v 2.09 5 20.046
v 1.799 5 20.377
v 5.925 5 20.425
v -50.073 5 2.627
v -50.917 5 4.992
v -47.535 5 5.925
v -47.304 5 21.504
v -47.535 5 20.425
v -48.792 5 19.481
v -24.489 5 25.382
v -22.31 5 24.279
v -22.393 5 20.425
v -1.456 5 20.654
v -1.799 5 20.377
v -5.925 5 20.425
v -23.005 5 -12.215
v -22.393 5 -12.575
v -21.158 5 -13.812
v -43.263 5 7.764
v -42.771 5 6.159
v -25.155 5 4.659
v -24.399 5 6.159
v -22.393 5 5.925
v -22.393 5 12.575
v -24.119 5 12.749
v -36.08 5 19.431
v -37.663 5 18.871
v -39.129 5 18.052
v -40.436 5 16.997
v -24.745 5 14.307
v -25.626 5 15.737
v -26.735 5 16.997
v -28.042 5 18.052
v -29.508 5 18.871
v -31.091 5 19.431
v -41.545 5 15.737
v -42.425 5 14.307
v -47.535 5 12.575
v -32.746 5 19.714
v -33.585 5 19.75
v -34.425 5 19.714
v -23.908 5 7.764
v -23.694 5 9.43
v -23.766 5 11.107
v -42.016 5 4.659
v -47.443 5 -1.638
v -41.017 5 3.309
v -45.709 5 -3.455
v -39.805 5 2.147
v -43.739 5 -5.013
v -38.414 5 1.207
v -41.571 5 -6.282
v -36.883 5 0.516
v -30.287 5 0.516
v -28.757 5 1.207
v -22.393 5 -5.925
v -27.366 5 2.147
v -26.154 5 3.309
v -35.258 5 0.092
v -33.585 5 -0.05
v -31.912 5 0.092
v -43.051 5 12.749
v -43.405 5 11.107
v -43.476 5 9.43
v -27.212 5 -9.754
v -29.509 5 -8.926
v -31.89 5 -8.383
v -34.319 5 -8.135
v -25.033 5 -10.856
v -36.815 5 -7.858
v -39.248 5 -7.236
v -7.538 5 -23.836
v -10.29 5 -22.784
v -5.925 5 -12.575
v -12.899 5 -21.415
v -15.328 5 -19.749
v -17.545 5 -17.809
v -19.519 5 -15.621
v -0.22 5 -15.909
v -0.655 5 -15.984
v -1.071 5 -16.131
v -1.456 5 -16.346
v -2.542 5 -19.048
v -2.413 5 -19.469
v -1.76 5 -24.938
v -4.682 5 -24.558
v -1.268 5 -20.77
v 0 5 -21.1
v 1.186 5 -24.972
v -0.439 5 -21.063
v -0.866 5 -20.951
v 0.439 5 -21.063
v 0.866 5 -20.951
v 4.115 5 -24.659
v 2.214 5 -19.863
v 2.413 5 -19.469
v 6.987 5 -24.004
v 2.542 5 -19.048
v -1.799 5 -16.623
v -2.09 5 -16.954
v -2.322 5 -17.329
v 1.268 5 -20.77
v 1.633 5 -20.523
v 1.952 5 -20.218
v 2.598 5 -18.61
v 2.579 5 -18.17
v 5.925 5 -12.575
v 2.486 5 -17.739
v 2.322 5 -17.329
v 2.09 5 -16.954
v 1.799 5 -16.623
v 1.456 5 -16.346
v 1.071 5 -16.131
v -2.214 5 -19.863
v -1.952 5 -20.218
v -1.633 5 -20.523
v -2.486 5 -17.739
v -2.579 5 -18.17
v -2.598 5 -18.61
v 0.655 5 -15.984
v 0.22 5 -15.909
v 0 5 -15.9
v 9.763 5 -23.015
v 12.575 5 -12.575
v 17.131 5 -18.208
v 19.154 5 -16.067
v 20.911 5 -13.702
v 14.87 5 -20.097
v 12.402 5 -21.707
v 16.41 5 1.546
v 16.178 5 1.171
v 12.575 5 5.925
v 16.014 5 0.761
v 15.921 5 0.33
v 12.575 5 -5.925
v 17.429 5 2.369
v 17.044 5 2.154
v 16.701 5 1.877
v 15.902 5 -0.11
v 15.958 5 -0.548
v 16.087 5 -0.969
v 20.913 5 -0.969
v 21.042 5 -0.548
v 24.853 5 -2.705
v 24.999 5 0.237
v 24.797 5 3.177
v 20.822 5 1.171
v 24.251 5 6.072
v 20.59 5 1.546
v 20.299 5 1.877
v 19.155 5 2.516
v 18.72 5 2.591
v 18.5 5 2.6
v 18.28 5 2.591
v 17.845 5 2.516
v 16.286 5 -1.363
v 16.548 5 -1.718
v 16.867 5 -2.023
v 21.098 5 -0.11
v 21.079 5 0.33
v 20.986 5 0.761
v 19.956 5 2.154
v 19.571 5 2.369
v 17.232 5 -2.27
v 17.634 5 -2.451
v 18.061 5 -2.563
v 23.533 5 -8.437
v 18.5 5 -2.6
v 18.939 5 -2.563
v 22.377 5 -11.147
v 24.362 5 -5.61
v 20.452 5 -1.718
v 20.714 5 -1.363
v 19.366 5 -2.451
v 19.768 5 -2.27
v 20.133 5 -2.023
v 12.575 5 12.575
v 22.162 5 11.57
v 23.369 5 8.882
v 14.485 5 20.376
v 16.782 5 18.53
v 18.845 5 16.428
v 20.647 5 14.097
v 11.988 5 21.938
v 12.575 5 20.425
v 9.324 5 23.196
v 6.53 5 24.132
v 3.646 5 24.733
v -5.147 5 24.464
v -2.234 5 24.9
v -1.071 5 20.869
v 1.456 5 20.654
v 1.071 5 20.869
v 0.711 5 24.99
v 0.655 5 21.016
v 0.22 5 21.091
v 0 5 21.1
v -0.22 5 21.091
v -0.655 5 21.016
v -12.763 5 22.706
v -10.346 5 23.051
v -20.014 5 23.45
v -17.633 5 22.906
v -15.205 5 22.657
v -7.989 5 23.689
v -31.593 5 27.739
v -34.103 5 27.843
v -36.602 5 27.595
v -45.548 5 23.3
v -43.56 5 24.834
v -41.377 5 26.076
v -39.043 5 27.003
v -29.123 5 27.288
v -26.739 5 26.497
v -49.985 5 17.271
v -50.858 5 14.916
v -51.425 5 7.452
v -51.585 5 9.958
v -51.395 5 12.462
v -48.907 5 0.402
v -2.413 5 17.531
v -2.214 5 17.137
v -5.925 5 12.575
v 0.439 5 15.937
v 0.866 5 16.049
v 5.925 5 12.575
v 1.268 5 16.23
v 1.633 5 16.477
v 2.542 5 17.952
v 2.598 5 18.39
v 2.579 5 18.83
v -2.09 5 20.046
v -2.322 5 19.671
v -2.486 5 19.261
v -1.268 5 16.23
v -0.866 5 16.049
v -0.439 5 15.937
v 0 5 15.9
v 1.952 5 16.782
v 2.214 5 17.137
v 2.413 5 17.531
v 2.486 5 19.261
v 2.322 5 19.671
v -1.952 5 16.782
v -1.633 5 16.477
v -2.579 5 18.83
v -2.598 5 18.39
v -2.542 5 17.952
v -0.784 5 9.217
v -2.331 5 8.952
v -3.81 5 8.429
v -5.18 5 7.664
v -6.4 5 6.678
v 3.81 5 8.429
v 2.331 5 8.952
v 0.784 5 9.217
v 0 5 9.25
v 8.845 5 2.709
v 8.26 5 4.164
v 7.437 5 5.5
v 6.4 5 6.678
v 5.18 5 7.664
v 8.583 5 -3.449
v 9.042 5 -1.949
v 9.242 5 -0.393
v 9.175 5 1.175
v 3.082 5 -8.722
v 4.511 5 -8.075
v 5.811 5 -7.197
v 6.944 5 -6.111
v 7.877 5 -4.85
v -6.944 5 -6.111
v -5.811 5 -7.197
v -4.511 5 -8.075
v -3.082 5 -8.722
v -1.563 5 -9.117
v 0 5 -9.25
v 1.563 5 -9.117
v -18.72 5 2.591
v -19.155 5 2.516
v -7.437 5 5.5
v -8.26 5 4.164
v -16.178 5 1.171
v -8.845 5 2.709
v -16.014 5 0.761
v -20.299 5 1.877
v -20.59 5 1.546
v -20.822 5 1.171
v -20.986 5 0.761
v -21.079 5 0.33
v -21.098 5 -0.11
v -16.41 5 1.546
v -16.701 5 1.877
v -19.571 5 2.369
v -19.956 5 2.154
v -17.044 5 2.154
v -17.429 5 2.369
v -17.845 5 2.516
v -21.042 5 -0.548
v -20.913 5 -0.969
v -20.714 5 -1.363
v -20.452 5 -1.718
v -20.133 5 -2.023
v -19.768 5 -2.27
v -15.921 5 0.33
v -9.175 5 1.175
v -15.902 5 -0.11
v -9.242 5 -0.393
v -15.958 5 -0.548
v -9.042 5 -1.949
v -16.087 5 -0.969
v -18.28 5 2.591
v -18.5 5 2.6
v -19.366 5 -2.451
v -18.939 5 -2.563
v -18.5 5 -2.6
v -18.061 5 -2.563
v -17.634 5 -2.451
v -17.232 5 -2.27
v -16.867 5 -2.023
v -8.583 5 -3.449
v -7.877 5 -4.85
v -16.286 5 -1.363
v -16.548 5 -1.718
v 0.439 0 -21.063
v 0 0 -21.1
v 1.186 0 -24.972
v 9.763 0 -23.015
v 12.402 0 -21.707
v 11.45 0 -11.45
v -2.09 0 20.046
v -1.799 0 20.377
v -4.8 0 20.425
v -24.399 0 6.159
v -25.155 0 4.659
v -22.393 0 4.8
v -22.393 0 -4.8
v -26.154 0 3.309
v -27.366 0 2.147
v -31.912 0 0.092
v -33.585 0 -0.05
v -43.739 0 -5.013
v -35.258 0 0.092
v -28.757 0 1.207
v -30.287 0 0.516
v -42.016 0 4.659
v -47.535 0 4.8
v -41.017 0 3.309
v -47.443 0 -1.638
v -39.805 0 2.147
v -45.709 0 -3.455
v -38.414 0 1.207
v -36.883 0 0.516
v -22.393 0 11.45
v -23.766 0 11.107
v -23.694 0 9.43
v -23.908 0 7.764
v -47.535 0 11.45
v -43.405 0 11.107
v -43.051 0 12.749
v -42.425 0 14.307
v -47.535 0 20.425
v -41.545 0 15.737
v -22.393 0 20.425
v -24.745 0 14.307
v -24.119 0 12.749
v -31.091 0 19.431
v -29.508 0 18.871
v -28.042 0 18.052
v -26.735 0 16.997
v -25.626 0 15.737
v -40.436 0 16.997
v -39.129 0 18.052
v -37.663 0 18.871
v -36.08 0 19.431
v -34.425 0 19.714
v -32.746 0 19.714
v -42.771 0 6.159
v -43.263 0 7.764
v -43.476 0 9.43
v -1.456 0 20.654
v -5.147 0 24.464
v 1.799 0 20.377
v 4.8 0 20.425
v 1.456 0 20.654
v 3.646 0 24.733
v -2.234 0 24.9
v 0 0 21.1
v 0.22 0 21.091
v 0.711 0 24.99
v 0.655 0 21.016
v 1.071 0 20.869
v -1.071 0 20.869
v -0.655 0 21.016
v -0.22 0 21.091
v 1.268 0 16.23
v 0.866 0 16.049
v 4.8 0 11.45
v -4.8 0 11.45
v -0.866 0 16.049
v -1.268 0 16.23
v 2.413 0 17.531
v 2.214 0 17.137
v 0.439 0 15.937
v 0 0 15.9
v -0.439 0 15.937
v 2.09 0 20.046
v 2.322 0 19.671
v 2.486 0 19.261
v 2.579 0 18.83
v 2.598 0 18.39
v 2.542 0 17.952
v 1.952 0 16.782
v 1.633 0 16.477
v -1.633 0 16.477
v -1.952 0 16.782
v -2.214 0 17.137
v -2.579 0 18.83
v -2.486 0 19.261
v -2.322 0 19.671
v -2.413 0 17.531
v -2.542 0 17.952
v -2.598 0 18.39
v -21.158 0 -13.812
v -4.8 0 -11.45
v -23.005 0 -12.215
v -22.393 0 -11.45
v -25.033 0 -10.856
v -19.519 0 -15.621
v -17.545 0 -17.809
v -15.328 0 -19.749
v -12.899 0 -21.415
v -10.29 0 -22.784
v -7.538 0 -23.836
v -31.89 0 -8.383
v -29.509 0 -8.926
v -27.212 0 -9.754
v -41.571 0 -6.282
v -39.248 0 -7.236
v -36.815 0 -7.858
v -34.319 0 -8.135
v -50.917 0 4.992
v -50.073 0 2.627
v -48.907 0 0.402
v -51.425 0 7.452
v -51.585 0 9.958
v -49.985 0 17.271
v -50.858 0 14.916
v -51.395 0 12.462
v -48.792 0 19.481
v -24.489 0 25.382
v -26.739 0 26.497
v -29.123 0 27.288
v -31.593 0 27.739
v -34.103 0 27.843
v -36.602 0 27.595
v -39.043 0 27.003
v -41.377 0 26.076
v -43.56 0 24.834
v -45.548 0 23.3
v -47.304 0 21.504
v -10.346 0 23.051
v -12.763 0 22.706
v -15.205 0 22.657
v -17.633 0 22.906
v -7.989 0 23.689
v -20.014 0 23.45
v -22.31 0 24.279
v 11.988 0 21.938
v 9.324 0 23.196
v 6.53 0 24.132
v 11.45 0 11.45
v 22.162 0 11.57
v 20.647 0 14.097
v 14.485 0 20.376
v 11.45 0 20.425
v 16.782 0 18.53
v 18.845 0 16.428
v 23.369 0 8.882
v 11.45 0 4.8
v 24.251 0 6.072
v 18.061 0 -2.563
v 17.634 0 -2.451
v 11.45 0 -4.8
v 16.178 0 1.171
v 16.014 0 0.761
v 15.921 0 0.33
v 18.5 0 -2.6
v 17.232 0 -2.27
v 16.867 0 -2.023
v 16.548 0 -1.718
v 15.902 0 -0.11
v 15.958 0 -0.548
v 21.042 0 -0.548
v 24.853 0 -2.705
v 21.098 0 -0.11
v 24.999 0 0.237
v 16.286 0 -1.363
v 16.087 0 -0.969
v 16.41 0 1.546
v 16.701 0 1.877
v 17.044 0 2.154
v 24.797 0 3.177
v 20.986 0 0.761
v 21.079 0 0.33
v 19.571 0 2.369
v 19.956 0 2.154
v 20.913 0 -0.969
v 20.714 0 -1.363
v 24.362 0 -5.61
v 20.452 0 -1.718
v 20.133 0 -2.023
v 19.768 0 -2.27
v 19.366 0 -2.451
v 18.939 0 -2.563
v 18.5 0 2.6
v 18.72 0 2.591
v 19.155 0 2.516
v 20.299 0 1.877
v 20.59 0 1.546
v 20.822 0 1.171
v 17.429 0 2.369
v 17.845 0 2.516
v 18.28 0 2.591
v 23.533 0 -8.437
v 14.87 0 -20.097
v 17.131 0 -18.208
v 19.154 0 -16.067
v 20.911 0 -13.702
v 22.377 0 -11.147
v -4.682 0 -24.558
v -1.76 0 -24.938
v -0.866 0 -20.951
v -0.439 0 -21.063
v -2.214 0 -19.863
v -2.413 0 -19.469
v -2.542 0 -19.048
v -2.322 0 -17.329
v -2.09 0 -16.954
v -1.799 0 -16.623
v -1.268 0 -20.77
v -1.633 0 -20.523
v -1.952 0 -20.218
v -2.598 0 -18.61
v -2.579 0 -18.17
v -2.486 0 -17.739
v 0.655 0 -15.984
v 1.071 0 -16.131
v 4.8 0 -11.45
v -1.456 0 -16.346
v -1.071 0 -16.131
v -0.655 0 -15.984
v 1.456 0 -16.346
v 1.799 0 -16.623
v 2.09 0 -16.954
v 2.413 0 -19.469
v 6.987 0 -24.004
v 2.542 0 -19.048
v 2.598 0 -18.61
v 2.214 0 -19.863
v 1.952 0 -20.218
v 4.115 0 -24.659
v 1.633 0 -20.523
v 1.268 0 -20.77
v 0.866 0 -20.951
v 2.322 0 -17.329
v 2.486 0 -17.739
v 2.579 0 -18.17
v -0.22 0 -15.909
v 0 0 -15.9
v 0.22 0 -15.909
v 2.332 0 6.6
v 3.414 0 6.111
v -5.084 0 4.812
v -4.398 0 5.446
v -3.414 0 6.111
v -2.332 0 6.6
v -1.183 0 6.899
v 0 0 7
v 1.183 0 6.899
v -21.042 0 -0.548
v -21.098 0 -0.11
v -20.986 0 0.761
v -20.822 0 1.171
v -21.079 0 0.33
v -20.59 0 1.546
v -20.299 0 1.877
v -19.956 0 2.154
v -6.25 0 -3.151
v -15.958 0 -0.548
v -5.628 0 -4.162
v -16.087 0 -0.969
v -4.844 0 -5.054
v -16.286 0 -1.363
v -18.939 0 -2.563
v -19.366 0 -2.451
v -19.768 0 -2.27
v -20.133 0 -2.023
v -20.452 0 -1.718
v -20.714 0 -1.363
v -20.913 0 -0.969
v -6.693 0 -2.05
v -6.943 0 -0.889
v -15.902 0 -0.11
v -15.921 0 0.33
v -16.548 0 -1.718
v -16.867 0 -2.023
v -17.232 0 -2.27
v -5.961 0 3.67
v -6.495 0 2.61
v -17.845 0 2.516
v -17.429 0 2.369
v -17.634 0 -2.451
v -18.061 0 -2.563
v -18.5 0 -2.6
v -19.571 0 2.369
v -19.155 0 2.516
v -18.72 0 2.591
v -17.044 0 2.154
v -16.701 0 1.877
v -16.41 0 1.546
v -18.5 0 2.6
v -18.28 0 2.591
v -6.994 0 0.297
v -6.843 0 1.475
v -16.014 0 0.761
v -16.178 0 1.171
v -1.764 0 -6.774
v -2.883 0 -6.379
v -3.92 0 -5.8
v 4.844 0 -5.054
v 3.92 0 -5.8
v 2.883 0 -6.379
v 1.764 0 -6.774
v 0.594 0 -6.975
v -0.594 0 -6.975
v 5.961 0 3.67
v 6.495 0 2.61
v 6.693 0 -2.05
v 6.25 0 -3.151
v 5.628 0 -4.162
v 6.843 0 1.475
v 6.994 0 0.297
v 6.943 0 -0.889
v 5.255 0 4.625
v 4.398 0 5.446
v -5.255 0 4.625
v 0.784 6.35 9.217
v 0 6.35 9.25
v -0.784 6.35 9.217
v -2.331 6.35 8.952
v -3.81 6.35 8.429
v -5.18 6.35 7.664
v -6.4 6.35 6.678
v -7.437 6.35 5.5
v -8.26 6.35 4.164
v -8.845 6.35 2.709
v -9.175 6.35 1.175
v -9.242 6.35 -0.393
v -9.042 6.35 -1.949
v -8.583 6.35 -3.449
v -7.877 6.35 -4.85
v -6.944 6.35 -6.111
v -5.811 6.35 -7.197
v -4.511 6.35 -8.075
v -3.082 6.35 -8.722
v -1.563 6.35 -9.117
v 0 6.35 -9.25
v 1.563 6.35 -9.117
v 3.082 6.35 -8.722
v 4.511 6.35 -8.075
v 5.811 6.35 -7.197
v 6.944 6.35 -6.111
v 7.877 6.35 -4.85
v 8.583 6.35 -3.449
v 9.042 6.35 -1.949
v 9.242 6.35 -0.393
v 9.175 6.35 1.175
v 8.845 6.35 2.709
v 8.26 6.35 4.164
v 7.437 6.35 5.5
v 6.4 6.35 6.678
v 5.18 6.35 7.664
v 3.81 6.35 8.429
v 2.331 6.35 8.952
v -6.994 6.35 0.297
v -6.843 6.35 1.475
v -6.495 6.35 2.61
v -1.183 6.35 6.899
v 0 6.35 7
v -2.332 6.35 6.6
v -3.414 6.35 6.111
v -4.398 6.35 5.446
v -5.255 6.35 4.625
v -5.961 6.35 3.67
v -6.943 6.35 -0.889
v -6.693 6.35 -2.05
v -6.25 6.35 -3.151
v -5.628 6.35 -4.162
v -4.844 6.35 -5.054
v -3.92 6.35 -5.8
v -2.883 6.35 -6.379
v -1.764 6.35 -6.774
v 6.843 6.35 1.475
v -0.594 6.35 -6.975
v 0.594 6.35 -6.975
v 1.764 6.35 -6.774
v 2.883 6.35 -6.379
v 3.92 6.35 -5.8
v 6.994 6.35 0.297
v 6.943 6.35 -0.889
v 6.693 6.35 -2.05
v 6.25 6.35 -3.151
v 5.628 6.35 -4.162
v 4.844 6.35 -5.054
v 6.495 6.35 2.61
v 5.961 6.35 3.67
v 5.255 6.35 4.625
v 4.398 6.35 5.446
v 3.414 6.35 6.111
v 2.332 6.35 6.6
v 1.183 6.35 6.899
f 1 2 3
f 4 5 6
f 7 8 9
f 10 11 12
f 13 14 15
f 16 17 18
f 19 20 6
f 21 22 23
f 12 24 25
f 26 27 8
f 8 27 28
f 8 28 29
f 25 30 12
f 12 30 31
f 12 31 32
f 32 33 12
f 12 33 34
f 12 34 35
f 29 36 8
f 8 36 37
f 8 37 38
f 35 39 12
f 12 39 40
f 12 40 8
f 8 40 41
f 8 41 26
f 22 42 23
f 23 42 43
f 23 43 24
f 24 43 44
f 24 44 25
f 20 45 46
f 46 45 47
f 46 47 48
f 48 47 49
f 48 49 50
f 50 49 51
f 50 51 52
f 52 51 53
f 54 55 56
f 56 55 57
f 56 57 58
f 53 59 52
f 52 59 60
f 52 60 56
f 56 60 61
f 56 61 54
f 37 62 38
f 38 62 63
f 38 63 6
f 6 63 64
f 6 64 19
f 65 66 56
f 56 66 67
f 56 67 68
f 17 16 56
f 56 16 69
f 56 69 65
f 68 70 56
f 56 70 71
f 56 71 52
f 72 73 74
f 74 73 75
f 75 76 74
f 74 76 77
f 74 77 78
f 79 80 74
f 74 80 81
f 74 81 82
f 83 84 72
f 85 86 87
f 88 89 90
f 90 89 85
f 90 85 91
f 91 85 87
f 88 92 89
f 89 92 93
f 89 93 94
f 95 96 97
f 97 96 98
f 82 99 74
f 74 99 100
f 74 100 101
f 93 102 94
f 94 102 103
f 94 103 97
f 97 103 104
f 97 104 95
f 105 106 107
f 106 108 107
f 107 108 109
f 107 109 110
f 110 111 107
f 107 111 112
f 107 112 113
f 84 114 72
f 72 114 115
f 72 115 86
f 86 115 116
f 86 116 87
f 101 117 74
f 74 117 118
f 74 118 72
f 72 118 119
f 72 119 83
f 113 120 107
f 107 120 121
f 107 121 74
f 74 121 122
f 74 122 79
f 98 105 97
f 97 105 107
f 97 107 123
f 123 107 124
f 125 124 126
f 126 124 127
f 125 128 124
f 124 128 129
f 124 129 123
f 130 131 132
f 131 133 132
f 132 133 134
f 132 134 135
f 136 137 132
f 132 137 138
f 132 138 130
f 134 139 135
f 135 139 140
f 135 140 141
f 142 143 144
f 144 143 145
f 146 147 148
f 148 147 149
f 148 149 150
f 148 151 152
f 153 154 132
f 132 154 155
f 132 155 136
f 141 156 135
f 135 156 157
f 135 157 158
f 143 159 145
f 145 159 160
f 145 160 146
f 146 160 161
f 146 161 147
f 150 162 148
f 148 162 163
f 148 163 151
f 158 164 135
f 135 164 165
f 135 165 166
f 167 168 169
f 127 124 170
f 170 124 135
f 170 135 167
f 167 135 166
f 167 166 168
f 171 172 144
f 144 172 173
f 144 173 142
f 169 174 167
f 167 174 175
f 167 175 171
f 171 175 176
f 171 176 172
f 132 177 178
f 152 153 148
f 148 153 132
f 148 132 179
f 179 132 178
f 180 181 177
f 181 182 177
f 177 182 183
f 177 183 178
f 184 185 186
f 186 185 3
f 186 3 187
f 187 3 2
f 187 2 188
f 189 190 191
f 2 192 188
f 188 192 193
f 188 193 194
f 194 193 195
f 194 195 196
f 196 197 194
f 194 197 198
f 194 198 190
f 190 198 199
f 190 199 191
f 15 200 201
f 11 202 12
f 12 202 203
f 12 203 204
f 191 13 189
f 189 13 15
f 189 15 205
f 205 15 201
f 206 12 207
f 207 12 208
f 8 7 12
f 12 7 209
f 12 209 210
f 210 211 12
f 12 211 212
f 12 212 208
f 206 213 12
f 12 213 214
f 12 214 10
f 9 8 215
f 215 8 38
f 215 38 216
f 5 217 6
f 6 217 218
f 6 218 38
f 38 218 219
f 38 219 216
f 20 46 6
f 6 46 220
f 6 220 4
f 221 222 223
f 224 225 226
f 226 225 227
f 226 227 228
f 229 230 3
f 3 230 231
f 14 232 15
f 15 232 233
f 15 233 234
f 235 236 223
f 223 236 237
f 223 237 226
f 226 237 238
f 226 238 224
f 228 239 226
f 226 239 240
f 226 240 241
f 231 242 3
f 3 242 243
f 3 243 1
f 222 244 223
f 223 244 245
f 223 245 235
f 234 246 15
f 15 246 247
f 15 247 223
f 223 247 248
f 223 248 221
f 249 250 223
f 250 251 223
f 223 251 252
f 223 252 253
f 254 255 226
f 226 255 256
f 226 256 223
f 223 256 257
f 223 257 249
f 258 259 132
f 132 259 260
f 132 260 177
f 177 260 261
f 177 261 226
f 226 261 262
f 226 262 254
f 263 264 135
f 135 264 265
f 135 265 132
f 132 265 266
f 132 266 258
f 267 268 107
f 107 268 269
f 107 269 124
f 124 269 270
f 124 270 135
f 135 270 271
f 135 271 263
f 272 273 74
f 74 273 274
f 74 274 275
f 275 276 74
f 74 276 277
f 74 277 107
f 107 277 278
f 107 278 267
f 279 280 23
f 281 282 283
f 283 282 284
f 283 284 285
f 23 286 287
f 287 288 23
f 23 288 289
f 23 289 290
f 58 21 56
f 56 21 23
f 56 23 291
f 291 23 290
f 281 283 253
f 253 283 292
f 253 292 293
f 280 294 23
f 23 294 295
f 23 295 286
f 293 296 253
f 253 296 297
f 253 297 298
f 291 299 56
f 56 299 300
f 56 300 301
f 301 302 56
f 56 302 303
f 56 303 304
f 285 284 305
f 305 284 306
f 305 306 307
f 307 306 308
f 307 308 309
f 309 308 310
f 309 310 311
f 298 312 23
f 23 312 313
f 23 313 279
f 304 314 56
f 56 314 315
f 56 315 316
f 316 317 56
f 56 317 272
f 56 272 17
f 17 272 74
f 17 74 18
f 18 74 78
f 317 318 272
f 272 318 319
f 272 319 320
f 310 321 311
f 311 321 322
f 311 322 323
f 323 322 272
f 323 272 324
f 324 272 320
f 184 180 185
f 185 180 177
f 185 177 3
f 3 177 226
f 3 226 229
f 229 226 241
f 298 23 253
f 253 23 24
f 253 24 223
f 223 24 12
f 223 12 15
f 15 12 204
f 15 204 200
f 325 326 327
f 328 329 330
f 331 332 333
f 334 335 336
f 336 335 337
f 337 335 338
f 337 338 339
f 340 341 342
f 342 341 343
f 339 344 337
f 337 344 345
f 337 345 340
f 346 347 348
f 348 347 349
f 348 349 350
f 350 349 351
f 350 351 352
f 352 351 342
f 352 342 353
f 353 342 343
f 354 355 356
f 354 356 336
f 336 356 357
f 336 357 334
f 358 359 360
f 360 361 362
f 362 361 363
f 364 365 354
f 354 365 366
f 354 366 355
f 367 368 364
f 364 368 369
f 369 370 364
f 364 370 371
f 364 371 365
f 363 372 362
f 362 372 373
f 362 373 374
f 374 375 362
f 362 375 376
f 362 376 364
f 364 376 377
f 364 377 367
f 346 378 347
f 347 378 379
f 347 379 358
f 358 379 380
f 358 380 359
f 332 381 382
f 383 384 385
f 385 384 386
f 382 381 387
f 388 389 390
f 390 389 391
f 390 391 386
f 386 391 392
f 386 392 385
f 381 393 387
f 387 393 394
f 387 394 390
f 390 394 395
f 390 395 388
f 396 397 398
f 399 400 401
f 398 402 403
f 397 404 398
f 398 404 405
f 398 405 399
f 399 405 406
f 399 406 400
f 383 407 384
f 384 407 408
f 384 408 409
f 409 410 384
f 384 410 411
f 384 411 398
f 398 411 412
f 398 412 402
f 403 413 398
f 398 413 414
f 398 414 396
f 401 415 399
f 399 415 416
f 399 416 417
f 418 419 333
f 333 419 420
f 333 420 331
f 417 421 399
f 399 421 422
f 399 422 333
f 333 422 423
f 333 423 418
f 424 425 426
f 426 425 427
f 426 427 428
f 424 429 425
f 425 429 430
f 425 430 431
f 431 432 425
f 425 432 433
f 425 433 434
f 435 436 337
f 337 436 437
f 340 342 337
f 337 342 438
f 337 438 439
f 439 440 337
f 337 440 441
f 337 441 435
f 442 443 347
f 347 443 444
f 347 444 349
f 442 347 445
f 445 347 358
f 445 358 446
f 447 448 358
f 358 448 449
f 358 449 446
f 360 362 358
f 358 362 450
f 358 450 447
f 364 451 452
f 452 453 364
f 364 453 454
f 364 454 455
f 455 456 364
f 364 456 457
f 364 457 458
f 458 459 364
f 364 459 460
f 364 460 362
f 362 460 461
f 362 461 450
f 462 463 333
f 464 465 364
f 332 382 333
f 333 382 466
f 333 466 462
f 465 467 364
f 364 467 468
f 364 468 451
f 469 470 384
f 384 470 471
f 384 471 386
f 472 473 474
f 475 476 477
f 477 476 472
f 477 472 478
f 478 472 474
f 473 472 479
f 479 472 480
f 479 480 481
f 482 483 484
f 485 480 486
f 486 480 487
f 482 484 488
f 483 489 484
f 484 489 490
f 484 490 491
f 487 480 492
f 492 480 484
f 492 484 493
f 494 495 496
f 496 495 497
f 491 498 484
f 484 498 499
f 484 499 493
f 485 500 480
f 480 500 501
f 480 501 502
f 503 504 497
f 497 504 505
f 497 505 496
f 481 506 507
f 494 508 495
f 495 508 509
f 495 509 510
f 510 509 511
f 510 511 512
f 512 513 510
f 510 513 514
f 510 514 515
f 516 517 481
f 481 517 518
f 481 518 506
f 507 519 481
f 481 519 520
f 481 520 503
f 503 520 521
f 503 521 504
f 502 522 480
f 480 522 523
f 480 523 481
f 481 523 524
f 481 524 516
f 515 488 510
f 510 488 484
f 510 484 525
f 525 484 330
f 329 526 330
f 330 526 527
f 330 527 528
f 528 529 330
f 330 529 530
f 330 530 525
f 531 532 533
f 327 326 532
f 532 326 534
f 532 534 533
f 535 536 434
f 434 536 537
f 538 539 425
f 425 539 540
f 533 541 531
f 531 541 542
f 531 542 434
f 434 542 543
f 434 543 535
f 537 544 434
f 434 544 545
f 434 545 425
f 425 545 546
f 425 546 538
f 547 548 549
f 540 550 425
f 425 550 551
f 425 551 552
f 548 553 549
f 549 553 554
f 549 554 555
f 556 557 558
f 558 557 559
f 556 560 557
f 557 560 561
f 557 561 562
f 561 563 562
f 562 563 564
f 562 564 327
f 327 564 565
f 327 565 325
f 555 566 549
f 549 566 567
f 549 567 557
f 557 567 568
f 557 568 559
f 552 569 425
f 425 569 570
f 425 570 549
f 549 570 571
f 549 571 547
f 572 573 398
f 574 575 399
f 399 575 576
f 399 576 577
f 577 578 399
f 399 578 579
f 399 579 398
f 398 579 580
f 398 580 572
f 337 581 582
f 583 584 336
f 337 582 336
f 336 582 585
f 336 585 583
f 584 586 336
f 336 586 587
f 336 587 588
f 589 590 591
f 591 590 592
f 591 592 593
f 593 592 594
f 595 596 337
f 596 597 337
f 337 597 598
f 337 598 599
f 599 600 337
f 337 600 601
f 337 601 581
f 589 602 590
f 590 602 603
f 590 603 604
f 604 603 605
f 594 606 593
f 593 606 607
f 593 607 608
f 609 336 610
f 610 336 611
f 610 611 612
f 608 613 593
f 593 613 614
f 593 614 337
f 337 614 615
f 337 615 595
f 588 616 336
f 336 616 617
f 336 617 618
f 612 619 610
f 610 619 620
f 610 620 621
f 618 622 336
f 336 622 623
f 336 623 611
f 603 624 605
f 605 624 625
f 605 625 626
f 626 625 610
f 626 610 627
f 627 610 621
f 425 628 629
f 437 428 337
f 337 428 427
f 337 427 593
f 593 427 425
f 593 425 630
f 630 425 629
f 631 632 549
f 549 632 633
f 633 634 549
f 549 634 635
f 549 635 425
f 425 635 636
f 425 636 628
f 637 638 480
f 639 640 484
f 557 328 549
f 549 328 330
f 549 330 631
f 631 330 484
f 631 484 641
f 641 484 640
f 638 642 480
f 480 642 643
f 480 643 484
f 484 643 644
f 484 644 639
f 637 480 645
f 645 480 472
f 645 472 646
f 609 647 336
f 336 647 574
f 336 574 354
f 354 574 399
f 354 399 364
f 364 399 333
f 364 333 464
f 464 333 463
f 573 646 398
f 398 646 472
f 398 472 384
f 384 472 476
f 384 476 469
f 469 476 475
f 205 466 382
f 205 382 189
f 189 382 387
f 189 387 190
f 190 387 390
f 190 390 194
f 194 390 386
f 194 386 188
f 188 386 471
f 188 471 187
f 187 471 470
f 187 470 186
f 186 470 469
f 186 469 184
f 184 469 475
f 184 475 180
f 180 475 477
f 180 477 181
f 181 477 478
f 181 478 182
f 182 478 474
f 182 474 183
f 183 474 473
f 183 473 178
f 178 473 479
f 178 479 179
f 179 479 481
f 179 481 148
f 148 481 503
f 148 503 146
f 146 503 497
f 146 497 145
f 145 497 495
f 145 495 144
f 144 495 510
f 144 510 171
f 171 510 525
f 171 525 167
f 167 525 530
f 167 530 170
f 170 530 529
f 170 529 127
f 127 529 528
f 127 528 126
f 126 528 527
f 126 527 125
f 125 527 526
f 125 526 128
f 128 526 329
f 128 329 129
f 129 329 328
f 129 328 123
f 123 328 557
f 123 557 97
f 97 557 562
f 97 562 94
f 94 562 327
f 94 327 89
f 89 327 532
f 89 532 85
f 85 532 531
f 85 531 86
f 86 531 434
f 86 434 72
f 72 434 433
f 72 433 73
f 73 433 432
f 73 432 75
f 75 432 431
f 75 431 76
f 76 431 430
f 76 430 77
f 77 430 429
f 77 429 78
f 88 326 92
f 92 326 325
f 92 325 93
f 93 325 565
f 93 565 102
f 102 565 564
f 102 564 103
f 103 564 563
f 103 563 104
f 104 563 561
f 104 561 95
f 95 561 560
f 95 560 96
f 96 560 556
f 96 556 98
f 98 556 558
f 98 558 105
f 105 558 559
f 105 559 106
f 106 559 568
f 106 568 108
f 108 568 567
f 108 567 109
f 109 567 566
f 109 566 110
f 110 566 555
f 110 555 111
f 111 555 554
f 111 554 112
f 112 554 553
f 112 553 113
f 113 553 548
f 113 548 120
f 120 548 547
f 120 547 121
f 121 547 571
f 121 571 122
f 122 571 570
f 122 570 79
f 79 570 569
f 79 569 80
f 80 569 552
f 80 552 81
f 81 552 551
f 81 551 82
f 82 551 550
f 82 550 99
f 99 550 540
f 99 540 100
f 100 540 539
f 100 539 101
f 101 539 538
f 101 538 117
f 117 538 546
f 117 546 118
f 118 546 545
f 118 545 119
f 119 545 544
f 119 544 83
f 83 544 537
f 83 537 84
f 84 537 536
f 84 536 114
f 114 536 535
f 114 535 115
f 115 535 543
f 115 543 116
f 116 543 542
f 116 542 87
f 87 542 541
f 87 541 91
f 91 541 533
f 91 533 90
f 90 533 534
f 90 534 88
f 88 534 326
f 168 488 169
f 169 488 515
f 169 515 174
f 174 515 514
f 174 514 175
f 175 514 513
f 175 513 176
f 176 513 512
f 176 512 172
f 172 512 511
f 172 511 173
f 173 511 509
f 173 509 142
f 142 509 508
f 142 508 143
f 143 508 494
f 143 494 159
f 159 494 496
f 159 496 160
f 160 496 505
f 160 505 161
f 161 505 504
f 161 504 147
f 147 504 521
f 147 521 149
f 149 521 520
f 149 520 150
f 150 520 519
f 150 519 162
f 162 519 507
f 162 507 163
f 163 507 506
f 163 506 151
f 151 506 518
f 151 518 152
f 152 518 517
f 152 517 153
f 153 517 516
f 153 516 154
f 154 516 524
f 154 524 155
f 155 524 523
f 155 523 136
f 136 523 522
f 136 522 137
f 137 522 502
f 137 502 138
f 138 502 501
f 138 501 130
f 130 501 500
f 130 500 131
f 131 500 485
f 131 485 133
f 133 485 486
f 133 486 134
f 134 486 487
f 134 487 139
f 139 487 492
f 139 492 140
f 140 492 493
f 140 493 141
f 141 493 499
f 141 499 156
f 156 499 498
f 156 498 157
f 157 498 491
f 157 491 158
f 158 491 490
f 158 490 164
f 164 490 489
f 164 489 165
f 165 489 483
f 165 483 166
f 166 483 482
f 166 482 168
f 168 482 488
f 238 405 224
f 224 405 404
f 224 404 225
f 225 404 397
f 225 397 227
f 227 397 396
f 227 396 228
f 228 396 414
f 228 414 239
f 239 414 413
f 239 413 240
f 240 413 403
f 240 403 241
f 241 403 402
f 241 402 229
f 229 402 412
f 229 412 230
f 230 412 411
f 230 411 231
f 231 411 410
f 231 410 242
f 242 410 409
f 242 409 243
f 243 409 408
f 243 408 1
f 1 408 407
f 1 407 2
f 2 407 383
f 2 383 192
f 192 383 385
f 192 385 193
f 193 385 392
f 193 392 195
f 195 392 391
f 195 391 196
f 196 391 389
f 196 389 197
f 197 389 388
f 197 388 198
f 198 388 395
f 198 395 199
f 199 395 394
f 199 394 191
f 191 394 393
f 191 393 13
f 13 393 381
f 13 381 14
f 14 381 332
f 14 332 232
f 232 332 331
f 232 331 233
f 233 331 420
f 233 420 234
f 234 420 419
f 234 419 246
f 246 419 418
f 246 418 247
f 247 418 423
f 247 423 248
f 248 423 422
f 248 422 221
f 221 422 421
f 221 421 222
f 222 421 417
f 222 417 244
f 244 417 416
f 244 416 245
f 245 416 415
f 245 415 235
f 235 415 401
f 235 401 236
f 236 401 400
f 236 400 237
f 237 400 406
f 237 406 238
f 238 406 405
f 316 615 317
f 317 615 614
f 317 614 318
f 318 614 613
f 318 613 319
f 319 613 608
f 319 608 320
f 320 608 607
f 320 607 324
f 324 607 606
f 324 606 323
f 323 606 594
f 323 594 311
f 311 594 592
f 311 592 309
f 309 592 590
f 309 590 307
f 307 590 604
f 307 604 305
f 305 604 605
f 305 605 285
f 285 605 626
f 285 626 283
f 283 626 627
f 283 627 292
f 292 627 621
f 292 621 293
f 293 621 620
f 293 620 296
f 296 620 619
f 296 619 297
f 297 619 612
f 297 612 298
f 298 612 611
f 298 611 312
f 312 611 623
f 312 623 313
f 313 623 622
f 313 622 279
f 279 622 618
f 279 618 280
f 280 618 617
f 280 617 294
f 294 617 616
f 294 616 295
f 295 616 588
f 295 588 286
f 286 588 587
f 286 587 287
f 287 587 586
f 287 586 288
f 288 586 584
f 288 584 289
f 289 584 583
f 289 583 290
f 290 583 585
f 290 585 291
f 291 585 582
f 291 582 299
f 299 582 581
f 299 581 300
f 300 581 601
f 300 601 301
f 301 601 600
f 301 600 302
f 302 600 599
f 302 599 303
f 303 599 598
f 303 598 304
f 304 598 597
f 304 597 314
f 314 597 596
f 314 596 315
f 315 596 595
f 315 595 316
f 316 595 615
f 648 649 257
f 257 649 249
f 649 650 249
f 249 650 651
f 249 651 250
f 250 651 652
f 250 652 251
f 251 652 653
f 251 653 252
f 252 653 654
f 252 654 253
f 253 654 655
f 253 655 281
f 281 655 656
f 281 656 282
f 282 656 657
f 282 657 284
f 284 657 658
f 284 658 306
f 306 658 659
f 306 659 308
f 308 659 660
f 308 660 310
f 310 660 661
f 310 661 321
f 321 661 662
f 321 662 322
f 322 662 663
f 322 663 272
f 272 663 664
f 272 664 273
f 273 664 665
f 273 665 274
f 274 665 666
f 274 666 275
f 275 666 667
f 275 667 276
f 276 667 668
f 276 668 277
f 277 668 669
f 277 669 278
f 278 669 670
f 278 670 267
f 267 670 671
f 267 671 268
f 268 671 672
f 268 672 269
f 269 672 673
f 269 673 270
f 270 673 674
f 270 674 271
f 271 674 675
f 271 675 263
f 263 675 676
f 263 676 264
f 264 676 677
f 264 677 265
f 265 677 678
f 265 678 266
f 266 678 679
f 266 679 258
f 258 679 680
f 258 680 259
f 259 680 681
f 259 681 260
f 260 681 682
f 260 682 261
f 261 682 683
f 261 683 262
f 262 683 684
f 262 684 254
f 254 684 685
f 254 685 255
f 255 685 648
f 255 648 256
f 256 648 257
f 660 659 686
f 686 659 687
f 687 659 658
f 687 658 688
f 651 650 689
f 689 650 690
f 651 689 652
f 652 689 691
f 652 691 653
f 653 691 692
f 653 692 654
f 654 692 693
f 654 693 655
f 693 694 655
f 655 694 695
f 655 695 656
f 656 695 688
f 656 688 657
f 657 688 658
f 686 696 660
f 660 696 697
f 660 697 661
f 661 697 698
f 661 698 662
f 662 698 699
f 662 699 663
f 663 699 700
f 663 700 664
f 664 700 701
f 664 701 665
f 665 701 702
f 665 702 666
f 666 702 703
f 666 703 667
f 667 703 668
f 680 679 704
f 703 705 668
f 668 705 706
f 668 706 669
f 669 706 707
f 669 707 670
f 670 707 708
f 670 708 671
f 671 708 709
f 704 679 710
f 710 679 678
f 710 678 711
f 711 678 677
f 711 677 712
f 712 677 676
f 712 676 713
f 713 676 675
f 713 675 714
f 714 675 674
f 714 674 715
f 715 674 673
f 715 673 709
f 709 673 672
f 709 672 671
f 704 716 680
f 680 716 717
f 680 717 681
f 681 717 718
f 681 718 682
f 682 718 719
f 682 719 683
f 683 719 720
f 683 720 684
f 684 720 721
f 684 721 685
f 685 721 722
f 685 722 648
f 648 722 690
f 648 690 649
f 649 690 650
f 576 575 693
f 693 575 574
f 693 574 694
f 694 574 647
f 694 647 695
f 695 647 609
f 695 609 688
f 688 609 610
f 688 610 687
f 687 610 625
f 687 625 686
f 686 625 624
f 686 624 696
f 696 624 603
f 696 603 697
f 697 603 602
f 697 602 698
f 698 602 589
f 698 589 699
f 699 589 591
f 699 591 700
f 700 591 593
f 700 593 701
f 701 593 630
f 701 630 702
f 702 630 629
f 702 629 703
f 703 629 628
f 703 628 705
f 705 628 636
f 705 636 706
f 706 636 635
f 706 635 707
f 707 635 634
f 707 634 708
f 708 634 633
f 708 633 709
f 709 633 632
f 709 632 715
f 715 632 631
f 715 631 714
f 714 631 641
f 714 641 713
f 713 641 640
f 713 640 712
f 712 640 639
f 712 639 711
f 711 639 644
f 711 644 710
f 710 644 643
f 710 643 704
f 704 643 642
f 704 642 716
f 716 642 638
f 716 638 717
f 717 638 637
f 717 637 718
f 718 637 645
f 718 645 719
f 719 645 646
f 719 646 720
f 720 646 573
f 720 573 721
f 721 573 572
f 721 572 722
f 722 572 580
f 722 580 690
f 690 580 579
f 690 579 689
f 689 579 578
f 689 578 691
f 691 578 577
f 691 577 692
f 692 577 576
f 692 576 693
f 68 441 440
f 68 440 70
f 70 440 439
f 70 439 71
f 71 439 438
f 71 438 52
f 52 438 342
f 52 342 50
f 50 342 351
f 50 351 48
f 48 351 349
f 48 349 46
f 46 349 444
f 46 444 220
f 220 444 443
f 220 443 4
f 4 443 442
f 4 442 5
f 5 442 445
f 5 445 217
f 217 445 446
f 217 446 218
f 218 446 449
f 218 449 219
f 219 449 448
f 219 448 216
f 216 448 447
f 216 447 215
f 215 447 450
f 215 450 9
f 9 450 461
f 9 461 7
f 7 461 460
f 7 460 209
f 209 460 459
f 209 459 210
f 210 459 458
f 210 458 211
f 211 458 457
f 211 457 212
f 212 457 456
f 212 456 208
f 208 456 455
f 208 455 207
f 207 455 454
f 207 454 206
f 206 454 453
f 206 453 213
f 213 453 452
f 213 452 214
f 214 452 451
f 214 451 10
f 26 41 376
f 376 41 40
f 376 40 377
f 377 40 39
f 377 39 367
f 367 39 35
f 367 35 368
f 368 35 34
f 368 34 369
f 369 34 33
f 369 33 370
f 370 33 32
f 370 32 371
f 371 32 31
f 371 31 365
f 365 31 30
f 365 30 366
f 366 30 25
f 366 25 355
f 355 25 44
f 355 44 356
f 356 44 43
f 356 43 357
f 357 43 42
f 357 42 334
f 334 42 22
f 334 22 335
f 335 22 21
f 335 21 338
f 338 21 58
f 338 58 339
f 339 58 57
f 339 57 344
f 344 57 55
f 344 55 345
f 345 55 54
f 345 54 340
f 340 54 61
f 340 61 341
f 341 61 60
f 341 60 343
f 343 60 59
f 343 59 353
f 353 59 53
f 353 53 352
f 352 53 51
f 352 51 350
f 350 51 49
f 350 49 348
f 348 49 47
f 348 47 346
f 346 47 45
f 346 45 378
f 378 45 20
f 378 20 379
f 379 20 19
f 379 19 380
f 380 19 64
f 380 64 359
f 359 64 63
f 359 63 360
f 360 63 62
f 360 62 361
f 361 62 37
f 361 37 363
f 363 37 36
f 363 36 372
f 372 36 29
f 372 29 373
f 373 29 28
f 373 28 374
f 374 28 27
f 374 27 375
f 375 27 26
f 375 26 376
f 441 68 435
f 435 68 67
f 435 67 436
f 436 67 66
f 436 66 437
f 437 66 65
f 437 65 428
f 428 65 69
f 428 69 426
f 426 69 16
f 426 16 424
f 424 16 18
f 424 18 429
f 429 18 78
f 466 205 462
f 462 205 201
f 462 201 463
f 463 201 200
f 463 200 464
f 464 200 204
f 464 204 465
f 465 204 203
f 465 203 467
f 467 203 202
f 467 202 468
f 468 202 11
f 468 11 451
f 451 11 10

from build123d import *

# Parameters (mm, degrees)
SKETCH2_R           = 25
SKETCH2_R_2         = 2.6
BOSS_EXTRUDE1_DEPTH = 5
SKETCH4_R           = 9.25
BOSS_EXTRUDE2_DEPTH = 1.35
SKETCH3_R           = 7
CUT_EXTRUDE1_DEPTH  = 36.921059283
SKETCH5_R           = 9.9
BOSS_EXTRUDE3_DEPTH = 5
FILLET1_R           = 20


with BuildPart() as part:
    # Sketch2 → Boss-Extrude1 (new body)
    with BuildSketch(Plane(origin=(0, 0, 0), x_dir=(1, 0, 0), z_dir=(0, 1, 0))):
        with Locations(Location((0, 0, 0), (0, 0, 270))):
            Circle(SKETCH2_R)
        with Locations(Location((0, 18.5, 0), (0, 0, 270))):
            Circle(SKETCH2_R_2, mode=Mode.SUBTRACT)
        with Locations(Location((18.5, 0, 0), (0, 0, 270))):
            Circle(SKETCH2_R_2, mode=Mode.SUBTRACT)
        with Locations(Location((0, -18.5, 0), (0, 0, 270))):
            Circle(SKETCH2_R_2, mode=Mode.SUBTRACT)
        with Locations(Location((-18.5, 0, 0), (0, 0, 270))):
            Circle(SKETCH2_R_2, mode=Mode.SUBTRACT)
    extrude(amount=BOSS_EXTRUDE1_DEPTH)

    # Sketch4 → Boss-Extrude2 (add)
    with BuildSketch(Plane(origin=(0, 5, 0), x_dir=(1, 0, 0), z_dir=(0, 1, 0))):
        with Locations(Location((0, 0, 0), (0, 0, 90))):
            Circle(SKETCH4_R)
    extrude(amount=BOSS_EXTRUDE2_DEPTH)

    # Sketch3 → Cut-Extrude1 (cut, through all)
    with BuildSketch(Plane(origin=(0, 6.35, 0), x_dir=(1, 0, 0), z_dir=(0, 1, 0))):
        with Locations(Location((0, 0, 0), (0, 0, 270))):
            Circle(SKETCH3_R)
    extrude(amount=-CUT_EXTRUDE1_DEPTH, mode=Mode.SUBTRACT)

    # Sketch5 → Boss-Extrude3 (add)
    with BuildSketch(Plane.XZ):
        with BuildLine():
            ThreePointArc((-17.474868047, 17.878170677), (-50.857855513, 14.915714286), (-24.362914979, -5.607884962))
            ThreePointArc((-24.362914979, -5.607884962), (-23.989554487, 7.035714286), (-17.474868047, 17.878170677))
        make_face()
        with Locations(Location((-33.585376282, 9.85, 0), (0, 0, 270))):
            Circle(SKETCH5_R, mode=Mode.SUBTRACT)
    extrude(amount=-BOSS_EXTRUDE3_DEPTH)

    # Fillet1
    fillet1_edges = [part.edges().sort_by_distance(p)[0] for p in [
        (-17.474868047, 2.5, 17.878170677),
        (-24.362914979, 2.5, -5.607884962),
    ]]
    fillet(fillet1_edges, radius=FILLET1_R)


solid = part.part
